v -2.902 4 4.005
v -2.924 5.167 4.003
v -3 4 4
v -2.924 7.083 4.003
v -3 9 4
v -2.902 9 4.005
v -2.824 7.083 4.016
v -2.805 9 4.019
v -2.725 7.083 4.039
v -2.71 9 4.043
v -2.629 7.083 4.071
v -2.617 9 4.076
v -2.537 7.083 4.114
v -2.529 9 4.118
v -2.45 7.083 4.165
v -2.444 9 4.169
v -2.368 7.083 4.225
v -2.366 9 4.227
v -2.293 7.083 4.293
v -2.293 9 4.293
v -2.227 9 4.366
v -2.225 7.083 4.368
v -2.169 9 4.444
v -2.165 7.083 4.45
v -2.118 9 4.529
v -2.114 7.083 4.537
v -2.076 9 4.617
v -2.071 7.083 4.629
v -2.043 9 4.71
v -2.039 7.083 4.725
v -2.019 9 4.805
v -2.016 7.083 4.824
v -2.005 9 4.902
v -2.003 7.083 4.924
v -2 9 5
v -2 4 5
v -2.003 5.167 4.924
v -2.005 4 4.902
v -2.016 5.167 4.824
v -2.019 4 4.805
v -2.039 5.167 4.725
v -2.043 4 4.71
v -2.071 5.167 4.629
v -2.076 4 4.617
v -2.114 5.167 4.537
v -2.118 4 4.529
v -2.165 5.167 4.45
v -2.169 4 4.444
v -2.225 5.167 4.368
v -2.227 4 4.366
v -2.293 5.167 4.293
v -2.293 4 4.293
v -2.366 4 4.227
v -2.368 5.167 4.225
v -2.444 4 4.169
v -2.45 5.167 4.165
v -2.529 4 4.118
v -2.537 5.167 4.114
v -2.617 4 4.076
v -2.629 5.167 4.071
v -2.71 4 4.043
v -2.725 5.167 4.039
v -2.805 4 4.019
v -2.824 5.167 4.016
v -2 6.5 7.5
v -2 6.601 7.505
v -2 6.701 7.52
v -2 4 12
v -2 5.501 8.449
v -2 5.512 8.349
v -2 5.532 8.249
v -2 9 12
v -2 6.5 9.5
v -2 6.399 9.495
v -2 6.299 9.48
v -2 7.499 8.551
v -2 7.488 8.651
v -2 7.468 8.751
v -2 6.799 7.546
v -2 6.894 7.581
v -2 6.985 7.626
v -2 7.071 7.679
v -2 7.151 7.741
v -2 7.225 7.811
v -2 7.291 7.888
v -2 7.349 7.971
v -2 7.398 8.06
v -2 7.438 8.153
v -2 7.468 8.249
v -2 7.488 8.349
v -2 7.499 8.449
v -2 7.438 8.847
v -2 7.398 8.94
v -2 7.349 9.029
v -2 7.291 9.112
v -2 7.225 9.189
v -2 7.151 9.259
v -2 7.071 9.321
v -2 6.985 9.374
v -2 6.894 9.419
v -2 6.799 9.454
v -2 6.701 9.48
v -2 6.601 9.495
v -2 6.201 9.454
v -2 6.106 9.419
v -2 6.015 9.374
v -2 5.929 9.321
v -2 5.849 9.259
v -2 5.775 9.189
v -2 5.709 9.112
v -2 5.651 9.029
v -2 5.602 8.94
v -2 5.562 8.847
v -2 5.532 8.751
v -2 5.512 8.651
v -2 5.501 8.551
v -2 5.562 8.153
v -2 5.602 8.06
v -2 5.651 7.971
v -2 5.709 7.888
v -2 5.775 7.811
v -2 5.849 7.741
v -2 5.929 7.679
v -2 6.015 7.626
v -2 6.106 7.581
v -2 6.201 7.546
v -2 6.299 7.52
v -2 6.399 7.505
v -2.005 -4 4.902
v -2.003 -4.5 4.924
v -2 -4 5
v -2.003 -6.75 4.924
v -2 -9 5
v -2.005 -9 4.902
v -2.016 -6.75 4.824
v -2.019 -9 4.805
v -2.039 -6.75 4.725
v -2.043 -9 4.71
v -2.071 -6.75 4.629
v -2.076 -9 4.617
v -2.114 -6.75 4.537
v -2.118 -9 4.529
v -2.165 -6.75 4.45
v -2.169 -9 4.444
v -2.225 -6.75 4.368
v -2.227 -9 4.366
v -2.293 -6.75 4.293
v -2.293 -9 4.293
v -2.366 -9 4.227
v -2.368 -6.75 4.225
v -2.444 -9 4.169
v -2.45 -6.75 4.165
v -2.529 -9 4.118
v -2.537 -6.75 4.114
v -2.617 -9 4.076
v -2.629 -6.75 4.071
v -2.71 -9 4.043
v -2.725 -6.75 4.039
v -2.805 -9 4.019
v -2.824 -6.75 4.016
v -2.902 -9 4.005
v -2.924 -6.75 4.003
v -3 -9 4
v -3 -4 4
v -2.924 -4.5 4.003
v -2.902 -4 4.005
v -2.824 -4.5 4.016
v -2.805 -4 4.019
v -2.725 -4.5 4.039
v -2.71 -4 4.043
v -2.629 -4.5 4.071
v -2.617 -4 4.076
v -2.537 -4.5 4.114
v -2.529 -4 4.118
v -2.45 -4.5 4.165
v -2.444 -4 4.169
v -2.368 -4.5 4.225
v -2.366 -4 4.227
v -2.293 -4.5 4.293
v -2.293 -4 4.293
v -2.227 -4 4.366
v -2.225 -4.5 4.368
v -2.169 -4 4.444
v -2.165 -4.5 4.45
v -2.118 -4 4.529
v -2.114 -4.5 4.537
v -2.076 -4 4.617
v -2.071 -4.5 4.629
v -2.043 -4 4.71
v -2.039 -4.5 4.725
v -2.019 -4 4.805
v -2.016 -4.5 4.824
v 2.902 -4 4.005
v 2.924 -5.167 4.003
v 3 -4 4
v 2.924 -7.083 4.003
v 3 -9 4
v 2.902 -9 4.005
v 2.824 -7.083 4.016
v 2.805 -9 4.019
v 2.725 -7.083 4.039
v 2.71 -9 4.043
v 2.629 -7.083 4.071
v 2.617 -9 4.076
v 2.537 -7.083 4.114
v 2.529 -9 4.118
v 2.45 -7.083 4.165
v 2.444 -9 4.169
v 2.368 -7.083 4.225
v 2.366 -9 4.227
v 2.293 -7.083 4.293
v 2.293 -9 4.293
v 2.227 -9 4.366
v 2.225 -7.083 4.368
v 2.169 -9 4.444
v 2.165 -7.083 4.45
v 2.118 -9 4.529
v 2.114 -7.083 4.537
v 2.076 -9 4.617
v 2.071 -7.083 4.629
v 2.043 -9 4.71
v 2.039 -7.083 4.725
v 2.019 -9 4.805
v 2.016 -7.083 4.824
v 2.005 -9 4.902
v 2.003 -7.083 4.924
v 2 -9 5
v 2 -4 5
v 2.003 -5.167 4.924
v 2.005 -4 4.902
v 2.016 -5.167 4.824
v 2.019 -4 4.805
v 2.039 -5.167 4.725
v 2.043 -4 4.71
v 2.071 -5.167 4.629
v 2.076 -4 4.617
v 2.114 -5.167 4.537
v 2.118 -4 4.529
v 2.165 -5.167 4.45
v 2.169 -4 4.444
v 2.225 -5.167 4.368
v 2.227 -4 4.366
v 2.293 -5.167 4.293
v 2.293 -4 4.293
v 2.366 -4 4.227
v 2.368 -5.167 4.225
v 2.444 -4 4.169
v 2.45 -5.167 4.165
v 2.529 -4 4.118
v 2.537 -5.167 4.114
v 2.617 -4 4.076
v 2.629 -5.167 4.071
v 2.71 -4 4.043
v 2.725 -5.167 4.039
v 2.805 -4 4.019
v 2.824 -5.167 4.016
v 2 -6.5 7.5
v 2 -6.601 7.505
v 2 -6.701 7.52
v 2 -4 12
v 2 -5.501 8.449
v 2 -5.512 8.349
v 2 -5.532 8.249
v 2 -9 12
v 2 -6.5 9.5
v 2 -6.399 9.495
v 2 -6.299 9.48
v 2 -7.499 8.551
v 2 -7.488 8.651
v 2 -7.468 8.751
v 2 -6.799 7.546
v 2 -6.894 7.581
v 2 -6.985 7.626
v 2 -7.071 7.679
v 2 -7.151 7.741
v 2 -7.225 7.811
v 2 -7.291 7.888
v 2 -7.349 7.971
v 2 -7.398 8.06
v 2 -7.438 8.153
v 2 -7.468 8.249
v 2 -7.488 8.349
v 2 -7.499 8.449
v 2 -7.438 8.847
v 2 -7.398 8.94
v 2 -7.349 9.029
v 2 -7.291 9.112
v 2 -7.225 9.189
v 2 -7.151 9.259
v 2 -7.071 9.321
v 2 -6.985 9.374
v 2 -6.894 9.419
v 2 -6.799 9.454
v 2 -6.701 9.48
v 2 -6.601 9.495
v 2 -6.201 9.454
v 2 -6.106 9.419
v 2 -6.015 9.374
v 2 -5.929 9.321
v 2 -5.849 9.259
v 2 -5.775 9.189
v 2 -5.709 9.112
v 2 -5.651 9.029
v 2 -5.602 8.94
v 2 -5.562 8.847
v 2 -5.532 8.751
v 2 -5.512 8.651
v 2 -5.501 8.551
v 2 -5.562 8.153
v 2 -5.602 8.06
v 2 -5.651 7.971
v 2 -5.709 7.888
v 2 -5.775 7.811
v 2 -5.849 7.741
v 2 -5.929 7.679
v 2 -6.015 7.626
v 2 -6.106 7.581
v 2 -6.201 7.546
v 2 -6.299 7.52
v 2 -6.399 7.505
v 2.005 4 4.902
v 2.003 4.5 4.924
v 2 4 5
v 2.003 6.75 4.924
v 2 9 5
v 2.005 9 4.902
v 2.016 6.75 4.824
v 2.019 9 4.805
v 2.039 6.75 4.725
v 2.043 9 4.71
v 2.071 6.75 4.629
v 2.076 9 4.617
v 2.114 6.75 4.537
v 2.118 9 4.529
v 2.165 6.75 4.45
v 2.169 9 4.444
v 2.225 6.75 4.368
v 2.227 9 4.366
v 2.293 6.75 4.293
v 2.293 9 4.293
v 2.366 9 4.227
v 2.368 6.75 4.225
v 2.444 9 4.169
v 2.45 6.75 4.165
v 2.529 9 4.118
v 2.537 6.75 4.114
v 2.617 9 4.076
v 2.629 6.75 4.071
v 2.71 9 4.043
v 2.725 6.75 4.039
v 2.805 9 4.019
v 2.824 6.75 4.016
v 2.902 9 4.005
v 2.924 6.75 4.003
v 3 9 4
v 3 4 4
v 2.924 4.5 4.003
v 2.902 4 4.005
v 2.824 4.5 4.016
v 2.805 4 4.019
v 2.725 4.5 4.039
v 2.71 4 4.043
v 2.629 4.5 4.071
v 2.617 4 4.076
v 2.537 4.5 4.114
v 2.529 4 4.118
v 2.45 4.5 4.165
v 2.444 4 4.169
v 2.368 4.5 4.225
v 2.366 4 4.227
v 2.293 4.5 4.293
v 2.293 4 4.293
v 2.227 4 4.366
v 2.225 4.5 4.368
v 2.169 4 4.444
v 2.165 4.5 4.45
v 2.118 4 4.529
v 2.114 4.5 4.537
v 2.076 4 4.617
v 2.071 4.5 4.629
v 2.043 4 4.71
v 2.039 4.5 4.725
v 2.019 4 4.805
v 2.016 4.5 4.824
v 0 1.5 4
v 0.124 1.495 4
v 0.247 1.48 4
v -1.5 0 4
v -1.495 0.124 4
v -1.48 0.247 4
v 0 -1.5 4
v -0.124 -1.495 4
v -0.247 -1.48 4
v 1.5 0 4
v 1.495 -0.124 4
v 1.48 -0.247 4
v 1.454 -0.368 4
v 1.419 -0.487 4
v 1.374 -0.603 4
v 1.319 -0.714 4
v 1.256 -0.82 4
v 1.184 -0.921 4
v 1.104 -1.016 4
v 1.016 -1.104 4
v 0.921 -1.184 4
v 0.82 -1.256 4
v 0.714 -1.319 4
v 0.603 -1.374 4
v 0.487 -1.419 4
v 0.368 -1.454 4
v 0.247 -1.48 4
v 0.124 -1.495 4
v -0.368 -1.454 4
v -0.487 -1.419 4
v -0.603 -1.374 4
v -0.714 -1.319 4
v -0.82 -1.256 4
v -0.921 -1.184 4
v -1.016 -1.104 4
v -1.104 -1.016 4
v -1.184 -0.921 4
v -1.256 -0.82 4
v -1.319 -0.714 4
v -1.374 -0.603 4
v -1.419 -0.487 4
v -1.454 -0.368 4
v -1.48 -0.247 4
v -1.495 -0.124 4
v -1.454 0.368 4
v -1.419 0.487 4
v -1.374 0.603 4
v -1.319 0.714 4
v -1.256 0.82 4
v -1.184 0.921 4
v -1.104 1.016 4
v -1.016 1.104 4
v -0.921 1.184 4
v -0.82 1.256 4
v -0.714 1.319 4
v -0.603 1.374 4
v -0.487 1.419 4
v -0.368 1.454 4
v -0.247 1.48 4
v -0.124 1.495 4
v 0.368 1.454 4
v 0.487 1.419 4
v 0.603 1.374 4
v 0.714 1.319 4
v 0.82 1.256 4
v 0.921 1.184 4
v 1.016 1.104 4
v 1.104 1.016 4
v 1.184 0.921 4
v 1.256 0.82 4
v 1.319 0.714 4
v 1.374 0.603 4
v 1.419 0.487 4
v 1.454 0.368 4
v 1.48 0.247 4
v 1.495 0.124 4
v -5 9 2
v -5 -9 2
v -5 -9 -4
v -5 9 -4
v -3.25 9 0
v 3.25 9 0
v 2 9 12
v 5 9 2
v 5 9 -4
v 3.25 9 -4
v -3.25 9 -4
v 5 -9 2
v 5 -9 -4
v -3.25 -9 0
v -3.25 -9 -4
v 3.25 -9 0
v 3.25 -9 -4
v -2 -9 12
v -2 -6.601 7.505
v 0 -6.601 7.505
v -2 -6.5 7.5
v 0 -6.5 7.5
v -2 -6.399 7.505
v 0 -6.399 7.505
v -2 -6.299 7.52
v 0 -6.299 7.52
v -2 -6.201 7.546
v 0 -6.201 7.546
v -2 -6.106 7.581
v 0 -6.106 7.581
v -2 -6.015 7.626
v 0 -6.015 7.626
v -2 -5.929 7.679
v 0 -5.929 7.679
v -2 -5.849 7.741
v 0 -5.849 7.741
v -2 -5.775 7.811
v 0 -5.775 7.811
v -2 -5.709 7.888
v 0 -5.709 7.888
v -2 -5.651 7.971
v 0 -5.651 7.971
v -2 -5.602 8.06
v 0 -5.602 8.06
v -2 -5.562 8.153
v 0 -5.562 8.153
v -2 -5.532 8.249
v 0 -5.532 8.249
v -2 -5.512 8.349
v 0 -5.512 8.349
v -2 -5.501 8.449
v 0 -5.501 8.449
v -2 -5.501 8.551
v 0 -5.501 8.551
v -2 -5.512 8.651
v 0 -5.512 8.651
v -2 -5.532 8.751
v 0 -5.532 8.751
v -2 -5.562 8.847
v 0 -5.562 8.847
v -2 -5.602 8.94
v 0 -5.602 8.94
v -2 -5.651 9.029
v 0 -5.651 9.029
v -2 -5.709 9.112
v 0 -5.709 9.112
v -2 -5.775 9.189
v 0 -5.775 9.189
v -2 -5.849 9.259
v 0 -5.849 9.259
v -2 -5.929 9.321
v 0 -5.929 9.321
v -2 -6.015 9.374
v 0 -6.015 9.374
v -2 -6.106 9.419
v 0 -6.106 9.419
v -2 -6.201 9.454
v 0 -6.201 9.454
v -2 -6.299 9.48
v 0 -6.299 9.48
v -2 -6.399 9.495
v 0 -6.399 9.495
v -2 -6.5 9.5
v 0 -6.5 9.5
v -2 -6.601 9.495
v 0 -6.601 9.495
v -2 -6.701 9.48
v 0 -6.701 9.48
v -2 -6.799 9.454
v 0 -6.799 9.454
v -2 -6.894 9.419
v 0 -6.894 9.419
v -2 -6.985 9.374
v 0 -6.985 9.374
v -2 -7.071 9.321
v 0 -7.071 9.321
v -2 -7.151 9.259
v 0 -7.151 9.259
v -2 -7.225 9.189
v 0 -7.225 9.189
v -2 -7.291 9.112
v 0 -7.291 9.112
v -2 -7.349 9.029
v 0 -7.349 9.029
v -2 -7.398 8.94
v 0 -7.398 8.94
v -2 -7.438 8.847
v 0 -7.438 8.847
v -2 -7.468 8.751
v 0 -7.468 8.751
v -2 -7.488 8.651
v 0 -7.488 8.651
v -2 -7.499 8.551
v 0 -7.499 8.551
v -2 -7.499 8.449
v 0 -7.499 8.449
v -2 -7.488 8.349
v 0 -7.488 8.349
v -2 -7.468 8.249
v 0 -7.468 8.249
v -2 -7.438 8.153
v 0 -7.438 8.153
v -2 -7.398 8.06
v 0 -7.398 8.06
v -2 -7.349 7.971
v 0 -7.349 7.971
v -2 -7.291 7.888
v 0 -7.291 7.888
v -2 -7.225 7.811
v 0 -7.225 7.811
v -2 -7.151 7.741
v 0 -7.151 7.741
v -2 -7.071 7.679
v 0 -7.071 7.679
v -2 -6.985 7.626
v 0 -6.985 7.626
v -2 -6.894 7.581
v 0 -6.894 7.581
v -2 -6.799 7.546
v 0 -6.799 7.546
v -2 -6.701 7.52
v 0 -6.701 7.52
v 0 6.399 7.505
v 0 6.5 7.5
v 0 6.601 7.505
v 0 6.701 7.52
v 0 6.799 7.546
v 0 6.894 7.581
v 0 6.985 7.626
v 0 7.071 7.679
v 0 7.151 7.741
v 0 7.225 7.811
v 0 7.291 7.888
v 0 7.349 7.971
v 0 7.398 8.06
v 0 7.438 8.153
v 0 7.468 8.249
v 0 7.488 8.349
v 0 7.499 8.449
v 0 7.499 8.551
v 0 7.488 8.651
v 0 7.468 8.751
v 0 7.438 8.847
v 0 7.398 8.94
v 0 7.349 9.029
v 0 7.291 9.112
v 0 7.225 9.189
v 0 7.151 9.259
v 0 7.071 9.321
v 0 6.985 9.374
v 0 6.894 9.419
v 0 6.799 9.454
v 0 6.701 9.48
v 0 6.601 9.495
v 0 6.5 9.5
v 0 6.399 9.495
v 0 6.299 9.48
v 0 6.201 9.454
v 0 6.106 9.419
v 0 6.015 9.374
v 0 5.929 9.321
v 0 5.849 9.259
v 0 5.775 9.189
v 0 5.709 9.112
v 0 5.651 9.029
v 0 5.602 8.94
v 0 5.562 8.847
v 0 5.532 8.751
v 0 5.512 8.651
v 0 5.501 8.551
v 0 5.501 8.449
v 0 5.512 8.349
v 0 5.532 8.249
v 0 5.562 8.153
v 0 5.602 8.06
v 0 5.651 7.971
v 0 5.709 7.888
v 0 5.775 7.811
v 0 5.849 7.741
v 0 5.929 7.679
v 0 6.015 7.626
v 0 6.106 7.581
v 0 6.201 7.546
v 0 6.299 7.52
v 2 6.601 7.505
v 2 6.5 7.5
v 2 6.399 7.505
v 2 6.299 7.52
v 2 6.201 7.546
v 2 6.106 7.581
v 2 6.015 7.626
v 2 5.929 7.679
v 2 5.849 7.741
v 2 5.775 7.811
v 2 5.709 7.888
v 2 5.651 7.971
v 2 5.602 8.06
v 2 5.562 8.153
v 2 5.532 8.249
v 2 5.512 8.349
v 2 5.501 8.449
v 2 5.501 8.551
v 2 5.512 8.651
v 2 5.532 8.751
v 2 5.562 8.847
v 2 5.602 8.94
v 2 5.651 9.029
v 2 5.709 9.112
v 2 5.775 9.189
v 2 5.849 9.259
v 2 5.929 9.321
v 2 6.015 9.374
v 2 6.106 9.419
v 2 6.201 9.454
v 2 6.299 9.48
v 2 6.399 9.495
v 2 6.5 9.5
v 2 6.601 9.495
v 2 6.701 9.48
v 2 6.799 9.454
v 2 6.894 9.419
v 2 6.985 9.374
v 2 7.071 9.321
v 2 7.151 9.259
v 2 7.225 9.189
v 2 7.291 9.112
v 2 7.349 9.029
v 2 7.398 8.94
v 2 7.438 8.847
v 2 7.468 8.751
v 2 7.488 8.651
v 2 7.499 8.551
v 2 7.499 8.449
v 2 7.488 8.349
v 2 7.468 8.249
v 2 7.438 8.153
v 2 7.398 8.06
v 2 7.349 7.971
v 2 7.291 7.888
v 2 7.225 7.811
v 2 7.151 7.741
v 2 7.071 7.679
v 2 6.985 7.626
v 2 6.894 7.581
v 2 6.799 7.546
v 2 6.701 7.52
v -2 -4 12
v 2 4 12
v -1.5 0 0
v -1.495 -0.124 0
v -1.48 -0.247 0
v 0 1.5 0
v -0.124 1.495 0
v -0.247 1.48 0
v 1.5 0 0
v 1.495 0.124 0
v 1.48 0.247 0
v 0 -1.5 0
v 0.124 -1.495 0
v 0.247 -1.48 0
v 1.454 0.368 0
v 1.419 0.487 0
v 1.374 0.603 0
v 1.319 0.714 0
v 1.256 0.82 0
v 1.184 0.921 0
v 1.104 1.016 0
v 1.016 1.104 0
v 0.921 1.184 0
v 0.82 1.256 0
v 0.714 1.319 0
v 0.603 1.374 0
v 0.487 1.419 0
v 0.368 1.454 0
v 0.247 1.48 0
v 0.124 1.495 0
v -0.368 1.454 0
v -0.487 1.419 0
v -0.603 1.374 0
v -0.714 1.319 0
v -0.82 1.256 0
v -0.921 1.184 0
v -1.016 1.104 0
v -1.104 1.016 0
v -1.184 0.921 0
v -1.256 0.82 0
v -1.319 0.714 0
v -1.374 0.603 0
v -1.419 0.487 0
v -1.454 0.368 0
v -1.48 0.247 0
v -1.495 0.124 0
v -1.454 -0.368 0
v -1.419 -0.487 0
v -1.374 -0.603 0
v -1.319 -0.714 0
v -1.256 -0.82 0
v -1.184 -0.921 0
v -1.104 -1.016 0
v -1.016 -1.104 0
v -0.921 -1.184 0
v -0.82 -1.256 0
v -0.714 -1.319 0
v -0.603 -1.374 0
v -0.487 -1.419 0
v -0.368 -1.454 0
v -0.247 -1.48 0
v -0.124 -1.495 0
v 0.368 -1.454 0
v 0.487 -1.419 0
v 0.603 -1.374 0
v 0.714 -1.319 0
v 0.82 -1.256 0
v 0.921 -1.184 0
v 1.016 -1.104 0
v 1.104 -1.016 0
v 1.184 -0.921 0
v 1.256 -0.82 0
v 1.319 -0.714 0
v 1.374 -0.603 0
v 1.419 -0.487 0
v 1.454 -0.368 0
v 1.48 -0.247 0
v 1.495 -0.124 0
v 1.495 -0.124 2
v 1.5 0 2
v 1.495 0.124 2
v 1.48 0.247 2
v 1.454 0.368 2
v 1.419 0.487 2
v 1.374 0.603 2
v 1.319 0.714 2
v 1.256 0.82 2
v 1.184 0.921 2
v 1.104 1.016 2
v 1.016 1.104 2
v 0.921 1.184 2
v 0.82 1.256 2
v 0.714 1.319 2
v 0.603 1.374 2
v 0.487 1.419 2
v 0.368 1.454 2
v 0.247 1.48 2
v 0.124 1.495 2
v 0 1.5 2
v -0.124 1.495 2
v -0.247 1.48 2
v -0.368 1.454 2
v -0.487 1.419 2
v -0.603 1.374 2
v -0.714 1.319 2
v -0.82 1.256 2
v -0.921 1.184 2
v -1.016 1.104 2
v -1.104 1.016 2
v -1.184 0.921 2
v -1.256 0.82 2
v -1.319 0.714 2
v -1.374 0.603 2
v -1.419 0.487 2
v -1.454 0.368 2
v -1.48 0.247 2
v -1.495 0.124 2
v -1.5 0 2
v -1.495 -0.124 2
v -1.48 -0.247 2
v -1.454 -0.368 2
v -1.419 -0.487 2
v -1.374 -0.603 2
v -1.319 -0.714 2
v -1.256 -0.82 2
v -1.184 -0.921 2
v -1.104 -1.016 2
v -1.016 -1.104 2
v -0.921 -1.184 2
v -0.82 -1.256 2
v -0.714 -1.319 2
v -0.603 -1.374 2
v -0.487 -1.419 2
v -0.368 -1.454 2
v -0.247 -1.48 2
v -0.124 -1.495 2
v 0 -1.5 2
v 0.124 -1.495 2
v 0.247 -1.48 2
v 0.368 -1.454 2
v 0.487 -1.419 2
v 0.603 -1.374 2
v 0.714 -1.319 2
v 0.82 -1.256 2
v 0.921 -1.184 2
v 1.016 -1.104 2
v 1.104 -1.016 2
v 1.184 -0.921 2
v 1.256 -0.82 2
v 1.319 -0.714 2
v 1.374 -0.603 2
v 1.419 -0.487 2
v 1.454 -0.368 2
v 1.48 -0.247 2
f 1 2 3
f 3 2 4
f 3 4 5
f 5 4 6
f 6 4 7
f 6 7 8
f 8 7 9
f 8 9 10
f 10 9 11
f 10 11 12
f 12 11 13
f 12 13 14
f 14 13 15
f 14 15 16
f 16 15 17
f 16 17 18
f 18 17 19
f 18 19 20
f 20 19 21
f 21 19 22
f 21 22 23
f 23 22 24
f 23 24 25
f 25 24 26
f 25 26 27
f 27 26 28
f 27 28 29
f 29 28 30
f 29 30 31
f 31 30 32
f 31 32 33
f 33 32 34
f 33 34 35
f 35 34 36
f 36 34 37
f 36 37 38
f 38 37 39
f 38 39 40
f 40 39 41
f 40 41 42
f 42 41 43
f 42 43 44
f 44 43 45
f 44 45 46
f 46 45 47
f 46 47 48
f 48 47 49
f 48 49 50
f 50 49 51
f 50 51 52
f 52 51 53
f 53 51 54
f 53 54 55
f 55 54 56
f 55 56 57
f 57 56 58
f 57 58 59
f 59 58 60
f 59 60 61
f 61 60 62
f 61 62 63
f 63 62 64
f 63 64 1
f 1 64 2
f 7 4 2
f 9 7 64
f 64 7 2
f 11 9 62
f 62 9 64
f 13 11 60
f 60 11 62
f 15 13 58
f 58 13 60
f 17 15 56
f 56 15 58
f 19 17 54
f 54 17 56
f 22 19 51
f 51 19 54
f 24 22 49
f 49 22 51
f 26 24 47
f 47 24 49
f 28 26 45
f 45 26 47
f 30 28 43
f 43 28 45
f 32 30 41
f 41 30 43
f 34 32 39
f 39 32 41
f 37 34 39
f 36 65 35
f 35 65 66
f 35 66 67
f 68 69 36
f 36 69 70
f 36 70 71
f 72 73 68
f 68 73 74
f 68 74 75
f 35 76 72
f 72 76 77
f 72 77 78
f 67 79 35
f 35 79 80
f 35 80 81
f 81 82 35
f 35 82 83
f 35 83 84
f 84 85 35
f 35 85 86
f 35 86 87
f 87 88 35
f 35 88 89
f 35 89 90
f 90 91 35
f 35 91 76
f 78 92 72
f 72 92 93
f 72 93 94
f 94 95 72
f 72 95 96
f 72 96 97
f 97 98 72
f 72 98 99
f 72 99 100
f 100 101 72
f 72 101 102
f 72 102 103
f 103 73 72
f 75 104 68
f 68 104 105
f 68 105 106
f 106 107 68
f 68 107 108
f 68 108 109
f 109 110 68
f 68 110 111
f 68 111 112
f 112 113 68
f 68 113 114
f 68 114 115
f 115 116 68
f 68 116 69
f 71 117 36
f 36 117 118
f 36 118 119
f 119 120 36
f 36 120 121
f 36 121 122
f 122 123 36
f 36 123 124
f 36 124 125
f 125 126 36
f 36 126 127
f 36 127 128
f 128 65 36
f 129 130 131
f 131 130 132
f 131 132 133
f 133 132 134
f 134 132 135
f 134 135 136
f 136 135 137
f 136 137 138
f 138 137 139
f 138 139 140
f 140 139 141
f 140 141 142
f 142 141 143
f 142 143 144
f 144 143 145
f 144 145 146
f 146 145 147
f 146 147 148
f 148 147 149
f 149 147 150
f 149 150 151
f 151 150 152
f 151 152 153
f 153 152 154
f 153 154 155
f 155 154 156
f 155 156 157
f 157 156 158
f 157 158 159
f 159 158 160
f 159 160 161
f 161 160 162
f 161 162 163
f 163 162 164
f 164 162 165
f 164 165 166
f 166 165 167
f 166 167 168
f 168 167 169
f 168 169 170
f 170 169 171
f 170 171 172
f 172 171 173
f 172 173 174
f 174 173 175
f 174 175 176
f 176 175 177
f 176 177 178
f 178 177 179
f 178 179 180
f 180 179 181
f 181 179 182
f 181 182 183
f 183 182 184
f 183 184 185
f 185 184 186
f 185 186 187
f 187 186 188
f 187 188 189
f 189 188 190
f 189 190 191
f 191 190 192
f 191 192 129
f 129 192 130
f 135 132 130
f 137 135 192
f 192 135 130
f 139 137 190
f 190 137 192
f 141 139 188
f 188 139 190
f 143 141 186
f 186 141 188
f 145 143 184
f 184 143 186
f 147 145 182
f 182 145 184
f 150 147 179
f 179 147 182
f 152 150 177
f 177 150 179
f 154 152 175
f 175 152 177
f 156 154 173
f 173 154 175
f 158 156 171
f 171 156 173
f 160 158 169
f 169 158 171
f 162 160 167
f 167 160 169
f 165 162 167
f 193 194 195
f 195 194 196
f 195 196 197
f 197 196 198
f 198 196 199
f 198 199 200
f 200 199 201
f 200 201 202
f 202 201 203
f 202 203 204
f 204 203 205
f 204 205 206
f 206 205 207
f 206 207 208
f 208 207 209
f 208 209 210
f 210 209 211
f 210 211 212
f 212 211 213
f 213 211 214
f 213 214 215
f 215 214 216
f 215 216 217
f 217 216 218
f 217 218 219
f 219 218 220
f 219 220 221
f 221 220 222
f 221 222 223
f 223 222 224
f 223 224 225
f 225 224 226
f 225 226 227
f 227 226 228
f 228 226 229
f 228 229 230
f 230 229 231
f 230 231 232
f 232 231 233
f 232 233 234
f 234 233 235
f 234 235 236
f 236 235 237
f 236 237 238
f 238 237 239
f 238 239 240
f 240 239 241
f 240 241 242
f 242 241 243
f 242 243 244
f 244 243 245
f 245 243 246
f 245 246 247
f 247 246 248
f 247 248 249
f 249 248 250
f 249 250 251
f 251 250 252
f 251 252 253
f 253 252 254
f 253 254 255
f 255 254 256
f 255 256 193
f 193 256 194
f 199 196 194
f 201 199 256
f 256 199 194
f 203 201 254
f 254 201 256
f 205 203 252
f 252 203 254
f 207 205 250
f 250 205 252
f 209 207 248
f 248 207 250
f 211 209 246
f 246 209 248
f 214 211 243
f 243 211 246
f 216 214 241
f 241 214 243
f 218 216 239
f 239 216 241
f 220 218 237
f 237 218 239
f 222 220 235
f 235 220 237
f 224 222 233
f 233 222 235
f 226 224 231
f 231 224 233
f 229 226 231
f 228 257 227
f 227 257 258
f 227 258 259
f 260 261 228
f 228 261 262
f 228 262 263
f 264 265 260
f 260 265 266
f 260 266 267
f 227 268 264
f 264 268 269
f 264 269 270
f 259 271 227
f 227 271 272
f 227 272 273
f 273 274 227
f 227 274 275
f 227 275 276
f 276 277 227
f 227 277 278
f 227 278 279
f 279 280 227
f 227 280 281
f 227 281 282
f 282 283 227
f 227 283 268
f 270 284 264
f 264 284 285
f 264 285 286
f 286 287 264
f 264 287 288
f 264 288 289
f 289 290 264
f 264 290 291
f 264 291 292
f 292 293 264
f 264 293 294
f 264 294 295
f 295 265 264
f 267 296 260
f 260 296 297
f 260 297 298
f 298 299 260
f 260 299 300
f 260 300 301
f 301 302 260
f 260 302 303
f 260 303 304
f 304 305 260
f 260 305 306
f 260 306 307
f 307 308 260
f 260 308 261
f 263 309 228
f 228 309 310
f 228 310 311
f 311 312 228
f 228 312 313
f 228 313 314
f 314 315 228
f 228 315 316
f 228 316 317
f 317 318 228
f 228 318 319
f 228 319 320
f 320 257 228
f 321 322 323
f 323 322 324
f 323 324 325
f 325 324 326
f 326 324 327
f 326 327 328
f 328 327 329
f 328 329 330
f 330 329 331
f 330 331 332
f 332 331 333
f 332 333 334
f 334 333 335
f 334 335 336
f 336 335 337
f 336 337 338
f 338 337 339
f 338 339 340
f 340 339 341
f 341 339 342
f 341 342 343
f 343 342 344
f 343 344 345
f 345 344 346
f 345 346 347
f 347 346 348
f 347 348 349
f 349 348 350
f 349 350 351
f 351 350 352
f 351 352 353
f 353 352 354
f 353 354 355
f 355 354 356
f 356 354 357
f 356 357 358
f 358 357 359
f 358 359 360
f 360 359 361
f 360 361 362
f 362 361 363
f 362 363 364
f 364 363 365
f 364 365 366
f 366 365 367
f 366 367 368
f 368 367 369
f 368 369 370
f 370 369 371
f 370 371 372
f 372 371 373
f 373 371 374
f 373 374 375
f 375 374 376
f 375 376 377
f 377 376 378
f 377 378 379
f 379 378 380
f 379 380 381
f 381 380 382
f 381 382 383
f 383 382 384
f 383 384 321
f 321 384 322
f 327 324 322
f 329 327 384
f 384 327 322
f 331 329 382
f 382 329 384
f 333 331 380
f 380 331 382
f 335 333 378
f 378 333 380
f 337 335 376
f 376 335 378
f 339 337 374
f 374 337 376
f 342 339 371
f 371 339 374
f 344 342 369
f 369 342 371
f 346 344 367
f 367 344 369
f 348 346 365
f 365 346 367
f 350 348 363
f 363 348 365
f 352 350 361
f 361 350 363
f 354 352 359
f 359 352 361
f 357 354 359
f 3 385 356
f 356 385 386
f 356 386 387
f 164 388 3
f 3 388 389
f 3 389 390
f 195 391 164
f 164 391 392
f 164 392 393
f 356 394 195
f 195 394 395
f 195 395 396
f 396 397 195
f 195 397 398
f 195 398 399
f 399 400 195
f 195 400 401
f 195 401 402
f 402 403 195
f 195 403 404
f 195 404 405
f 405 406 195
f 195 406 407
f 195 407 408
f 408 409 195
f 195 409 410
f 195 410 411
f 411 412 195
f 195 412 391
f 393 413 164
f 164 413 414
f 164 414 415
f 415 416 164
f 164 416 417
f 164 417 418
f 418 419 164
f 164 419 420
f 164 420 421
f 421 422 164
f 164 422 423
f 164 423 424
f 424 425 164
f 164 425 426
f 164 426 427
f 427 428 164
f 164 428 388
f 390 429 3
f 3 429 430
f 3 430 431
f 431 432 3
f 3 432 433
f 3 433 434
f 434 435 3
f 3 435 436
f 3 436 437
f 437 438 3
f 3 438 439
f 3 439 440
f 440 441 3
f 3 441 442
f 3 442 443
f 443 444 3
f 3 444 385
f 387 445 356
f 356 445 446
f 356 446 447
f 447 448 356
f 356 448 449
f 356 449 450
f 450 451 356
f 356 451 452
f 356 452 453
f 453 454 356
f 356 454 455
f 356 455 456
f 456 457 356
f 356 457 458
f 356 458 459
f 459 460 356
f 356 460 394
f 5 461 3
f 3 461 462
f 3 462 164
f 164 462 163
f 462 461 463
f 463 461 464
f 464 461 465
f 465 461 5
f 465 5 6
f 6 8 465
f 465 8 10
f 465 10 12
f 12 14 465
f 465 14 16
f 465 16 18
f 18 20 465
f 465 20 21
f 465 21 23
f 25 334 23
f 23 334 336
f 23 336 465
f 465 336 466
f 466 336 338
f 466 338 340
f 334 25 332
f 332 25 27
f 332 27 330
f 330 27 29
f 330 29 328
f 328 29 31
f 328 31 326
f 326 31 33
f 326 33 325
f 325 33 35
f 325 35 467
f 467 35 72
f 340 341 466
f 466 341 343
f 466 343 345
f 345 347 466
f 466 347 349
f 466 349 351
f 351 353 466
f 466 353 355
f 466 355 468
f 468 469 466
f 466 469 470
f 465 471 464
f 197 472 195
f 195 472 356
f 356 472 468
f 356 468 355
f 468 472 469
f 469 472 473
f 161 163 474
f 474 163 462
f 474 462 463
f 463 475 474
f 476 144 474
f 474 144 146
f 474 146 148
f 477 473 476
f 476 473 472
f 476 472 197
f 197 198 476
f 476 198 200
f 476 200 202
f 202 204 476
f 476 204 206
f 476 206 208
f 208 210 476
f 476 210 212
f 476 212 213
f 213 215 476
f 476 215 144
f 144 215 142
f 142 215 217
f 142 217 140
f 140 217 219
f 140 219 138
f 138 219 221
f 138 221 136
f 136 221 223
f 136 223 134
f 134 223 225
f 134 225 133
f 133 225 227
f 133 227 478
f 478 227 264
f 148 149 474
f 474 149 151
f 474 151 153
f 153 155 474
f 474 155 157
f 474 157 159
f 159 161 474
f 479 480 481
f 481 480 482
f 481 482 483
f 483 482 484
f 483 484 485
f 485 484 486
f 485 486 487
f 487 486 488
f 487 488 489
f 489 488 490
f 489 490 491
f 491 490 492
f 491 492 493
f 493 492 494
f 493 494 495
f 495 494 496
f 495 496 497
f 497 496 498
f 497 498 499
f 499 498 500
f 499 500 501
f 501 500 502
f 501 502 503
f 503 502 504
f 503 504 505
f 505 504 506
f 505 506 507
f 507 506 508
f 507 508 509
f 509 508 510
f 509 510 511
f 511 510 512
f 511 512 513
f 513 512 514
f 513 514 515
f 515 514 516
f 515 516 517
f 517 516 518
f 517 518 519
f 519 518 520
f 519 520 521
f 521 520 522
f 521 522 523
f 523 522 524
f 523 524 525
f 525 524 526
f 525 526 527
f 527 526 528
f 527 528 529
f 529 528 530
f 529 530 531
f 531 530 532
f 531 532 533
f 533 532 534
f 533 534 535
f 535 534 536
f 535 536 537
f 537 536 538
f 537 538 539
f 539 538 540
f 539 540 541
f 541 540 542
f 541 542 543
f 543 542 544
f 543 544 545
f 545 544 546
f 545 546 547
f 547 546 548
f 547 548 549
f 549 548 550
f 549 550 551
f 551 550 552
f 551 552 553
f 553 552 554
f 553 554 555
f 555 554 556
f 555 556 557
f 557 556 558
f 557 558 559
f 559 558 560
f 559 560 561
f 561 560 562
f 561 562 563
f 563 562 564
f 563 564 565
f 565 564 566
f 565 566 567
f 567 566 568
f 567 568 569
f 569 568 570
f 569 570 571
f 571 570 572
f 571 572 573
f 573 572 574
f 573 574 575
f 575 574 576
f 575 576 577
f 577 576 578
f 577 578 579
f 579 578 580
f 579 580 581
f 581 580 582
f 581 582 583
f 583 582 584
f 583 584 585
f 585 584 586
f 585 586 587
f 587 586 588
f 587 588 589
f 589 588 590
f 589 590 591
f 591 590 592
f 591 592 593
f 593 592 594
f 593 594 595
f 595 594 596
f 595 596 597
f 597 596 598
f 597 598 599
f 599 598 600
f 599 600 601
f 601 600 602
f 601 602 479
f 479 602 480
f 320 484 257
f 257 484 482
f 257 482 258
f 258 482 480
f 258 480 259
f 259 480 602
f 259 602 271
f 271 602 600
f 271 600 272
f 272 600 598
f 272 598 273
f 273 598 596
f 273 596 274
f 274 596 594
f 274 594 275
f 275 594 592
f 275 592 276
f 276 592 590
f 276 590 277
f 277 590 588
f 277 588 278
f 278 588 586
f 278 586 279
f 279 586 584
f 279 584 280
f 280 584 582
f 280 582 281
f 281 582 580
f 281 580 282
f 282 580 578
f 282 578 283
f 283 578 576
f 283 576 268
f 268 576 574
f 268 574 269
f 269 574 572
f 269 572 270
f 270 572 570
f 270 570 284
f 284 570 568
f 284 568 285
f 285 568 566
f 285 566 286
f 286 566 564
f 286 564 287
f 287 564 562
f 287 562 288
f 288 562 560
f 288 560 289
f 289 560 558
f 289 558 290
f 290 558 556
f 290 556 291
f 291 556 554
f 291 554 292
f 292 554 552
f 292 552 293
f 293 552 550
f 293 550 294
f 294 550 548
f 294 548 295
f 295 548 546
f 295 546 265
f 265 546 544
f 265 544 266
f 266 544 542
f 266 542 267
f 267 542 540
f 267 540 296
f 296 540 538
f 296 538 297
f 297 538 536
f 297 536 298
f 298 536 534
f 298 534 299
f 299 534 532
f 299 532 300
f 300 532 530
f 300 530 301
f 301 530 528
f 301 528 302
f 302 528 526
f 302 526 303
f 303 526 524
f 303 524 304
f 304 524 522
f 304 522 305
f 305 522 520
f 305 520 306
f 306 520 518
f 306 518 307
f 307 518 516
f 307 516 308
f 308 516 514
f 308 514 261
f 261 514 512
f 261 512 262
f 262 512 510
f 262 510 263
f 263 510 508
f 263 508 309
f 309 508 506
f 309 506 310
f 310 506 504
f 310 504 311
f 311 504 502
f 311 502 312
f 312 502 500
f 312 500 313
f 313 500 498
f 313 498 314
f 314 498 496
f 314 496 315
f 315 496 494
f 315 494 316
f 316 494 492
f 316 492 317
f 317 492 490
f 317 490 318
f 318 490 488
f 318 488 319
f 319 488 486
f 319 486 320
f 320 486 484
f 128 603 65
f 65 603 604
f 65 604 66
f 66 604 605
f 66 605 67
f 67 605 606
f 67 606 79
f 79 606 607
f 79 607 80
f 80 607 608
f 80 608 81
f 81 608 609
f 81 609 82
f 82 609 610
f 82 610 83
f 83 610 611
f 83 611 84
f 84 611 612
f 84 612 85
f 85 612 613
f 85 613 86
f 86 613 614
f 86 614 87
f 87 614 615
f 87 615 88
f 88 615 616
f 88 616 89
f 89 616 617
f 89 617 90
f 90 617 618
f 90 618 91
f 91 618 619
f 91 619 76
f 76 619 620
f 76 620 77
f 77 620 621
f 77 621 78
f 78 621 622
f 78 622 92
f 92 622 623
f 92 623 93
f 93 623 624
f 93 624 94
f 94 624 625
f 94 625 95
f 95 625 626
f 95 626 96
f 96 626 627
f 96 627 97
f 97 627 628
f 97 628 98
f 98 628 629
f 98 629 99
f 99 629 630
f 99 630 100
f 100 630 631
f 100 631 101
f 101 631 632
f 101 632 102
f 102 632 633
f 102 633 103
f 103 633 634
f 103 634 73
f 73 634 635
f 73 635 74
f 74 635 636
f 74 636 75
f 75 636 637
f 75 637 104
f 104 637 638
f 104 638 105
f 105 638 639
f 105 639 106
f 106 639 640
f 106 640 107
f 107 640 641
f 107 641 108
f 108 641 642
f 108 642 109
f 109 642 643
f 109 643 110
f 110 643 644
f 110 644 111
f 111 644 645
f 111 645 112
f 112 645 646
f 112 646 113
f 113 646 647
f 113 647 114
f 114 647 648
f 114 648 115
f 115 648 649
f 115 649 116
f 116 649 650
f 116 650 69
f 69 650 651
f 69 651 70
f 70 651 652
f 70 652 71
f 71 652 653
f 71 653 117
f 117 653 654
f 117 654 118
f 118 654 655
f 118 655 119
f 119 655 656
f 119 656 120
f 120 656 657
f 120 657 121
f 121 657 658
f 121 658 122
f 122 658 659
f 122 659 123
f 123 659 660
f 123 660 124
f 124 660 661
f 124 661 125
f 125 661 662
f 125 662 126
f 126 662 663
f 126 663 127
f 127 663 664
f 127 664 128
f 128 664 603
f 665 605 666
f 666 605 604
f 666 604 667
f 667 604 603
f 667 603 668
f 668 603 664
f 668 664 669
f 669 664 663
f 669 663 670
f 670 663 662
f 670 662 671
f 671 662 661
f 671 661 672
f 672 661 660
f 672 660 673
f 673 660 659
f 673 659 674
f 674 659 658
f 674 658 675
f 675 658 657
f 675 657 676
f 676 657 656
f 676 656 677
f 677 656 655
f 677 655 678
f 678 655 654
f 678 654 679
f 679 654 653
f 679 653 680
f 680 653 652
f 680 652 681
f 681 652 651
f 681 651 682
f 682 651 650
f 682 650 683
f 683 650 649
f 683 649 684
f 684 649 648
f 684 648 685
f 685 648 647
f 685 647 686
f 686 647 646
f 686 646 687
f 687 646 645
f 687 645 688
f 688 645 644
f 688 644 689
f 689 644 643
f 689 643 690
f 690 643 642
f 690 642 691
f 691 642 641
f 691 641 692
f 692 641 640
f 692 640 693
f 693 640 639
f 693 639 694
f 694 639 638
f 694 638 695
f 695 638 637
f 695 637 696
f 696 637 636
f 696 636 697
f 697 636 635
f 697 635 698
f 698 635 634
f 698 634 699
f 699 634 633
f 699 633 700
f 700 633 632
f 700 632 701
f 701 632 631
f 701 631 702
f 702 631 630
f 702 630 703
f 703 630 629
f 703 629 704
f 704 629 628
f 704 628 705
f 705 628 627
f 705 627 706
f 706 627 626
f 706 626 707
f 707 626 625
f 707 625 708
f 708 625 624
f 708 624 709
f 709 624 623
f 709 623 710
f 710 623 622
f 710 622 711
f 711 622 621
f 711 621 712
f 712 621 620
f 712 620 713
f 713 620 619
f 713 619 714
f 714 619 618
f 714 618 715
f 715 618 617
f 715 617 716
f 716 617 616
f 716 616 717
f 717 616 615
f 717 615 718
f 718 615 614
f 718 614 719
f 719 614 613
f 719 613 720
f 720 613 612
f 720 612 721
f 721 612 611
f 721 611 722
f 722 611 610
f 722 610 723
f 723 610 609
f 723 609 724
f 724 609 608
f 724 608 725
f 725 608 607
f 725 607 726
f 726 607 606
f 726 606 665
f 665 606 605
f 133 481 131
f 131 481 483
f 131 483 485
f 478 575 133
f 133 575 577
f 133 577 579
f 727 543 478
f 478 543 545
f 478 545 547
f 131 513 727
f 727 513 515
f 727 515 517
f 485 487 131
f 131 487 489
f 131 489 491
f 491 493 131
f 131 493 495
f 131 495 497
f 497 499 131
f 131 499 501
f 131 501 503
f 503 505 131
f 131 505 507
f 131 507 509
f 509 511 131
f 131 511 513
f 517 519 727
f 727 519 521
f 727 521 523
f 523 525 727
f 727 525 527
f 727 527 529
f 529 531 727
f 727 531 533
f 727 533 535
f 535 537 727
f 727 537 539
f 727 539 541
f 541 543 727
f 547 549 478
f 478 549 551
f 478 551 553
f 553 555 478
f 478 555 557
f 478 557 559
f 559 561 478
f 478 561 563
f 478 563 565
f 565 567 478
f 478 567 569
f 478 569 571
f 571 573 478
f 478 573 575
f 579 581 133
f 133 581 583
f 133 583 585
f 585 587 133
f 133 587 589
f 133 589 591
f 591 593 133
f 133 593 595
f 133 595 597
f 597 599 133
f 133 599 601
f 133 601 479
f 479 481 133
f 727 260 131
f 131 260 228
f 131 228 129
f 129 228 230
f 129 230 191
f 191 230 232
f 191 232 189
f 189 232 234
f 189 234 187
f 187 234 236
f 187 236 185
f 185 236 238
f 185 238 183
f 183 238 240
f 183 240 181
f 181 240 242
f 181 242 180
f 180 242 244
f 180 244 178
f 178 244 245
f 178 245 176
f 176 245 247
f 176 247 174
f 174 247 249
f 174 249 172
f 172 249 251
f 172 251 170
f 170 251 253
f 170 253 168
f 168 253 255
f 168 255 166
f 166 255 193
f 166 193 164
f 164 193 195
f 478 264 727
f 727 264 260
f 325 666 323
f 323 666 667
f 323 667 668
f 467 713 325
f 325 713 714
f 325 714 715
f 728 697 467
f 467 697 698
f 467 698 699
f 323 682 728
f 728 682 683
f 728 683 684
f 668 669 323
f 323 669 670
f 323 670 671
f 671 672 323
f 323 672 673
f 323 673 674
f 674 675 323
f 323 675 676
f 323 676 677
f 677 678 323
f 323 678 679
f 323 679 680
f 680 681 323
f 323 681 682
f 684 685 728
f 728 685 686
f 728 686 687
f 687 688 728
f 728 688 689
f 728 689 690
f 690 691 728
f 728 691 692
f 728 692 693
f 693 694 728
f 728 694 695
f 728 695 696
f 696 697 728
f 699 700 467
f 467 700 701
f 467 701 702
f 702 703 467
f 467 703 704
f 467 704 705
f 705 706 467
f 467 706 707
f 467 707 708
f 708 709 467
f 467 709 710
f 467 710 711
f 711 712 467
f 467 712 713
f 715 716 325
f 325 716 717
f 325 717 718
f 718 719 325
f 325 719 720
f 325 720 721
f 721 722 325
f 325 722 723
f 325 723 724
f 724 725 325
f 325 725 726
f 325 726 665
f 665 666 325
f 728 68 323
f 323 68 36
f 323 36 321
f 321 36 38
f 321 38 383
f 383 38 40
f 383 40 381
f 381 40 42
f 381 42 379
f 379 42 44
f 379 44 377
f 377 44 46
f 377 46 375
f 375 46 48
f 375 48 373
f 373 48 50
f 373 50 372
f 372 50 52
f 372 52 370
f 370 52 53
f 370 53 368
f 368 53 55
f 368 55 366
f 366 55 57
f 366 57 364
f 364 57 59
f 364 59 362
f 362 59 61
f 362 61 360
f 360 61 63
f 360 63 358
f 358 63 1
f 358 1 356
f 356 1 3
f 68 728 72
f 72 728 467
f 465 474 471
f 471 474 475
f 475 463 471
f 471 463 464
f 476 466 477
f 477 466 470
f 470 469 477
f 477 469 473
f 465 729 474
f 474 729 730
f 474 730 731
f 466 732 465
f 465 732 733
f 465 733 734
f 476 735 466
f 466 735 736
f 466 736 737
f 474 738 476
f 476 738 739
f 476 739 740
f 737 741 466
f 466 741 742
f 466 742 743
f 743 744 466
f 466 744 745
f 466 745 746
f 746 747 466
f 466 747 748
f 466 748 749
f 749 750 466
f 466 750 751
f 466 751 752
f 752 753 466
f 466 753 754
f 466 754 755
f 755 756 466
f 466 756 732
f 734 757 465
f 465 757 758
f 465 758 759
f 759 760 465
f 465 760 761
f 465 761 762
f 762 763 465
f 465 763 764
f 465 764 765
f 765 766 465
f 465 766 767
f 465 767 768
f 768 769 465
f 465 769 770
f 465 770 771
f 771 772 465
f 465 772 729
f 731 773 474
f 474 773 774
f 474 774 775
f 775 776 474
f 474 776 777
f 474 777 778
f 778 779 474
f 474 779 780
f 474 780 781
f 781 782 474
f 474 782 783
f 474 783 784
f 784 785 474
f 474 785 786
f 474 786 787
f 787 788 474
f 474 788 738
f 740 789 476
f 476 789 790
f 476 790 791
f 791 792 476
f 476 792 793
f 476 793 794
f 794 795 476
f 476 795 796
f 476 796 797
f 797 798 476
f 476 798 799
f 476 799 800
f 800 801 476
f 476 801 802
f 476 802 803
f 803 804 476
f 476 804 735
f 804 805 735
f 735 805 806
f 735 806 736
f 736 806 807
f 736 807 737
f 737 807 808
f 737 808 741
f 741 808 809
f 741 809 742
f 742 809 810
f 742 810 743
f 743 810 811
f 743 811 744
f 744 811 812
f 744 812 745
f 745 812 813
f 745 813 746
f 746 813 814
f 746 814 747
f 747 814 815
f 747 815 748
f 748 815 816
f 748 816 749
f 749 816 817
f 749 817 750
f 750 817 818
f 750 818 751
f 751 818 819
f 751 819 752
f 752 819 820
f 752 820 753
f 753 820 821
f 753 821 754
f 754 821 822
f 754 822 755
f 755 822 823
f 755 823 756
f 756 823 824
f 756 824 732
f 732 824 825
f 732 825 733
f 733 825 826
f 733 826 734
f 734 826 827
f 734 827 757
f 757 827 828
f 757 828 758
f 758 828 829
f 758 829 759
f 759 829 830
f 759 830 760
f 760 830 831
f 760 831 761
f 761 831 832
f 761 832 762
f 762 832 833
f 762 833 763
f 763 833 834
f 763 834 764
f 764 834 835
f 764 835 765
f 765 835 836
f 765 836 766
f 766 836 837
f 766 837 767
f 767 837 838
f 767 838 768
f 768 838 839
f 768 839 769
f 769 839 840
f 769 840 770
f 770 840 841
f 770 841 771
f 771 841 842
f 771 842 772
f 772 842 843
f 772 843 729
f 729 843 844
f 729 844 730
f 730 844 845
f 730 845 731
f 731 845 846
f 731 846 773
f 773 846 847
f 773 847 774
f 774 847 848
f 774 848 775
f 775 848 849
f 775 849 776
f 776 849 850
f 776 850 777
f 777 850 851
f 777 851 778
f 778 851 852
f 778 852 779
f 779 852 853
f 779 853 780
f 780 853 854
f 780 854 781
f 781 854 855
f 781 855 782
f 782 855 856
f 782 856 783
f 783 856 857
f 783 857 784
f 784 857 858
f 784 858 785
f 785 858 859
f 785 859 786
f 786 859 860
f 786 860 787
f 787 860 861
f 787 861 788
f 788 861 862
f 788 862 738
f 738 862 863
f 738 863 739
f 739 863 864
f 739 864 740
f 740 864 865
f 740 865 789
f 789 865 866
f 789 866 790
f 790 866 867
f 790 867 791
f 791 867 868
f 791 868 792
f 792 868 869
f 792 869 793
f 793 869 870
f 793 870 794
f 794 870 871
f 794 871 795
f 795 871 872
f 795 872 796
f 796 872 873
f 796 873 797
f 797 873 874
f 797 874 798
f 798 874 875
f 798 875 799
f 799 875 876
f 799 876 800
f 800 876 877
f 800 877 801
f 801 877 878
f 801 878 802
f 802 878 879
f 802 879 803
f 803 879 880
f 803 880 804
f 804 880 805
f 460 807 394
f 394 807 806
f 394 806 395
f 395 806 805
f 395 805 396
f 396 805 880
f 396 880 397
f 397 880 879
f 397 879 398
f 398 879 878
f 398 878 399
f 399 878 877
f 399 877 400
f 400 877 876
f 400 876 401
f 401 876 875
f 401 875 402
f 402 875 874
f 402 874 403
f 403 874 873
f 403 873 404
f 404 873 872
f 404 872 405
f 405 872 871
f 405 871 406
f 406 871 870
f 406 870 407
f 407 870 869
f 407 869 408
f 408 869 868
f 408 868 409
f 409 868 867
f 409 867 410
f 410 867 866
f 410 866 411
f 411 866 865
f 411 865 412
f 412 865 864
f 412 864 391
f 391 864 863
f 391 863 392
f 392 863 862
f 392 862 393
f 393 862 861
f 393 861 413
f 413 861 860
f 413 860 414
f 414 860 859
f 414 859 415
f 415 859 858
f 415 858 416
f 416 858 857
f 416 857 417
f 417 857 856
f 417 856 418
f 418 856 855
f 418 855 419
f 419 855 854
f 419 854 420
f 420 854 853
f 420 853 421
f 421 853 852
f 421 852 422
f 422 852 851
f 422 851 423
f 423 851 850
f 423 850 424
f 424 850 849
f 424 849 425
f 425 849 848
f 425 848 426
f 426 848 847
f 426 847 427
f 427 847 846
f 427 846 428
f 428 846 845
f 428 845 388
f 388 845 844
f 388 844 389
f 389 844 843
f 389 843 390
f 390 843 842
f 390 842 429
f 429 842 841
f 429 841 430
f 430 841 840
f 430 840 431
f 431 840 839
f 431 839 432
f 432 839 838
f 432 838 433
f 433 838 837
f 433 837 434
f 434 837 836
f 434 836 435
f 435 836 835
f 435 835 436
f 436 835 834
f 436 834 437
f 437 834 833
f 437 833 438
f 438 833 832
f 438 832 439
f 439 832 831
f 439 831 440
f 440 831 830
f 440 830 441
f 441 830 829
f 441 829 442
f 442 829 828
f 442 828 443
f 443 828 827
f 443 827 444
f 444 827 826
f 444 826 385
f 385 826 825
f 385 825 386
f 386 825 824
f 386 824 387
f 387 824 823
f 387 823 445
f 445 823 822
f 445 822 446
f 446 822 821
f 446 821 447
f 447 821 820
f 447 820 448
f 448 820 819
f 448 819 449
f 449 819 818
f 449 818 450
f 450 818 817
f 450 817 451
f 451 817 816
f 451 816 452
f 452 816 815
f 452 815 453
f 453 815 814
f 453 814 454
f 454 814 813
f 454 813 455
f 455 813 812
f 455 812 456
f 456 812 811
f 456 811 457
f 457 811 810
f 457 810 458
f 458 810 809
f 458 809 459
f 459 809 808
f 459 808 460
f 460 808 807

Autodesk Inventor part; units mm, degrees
ref_plane "YZ Plane" through (0, 0, 0) normal (1, 0, 0) x (0, 1, 0)
ref_plane "XZ Plane" through (0, 0, 0) normal (0, 1, 0) x (-1, 0, 0)
ref_plane "XY Plane" through (0, 0, 0) normal (0, 0, 1) x (1, 0, 0)
sketch "Sketch1" plane through (0, 0, 0) normal (0, 0, 1) x (1, 0, 0)
  circle A0 centre (0, 0) radius 1.5 projected
  line L0 (-3.25, 2.3318) -> (-3.25, -2.3318) projected
  arc A1 (-3.25, -2.3318) -> (3.25, -2.3318) centre (0, 0) ccw projected
  line L1 (3.25, -2.3318) -> (3.25, 2.3318) projected
  arc A2 (3.25, 2.3318) -> (-3.25, 2.3318) centre (0, 0) ccw projected
  line L2 (5, 4) -> (5, -4)
  line L3 (5, -4) -> (-5, -4)
  line L4 (-5, -4) -> (-5, 4)
  line L5 (-5, 4) -> (5, 4)
  line L6 (5, 4) -> (-5, -4) construction
  line L7 (5, -4) -> (-5, 4) construction
  dimension "d0" = 8
  dimension "d1" = 10
extrude "Extrusion1" add sketch "Sketch1" along normal blind 4 contours A0 | A2 L1 A1 L0 | L0 A1 L3 L4 L5 A2 | L5 L2 L3 A1 L1 A2
sketch "Sketch2" plane through (0, 0, 4) normal (0, 0, 1) x (1, 0, 0)
  line L0 (5, 4) -> (-5, 4) projected
  line L1 (-5, 4) -> (-5, -4) projected
  line L2 (-5, -4) -> (5, -4) projected
  line L3 (5, -4) -> (5, 4) projected
  circle A0 centre (0, 0) radius 1.5
  dimension "d4" = 3
extrude "Extrusion2" cut sketch "Sketch2" against normal blind 4 contours A0
sketch "Sketch3" plane through (0, 0, 0) normal (0, 0, -1) x (-1, 0, 0)
  circle A0 centre (0, 0) radius 1.5 projected
  line L0 (-5, 4) -> (5, 4) projected
  line L1 (-5, -4) -> (-5, 4) projected
  line L2 (5, -4) -> (-5, -4) projected
  line L3 (5, 4) -> (5, -4) projected
  line L4 (-3.25, -2.3318) -> (-3.25, 2.3318) projected
  line L5 (3.25, 2.3318) -> (3.25, -2.3318) projected
  line L6 (-5, -4) -> (-3.25, -4)
  line L7 (-3.25, -4) -> (-3.25, 4)
  line L8 (-3.25, 4) -> (-5, 4)
  line L9 (-5, 4) -> (-5, -4)
  line L10 (5, 4) -> (5, -4) projected
  line L11 (5, -4) -> (3.25, -4)
  line L12 (3.25, -4) -> (3.25, 4)
  line L13 (3.25, 4) -> (5, 4)
  line L14 (5, 4) -> (5, -4)
  dimension "d7" = 1.75
  dimension "d8" = 8
  dimension "d9" = 1.75
  dimension "d10" = 8
extrude "Extrusion3" add sketch "Sketch3" along normal blind 4 contours L0 L7 L4 L2 L1 | L0 L3 L2 L12 L5
sketch "Sketch4" plane through (0, 0, 4) normal (0, 0, 1) x (1, 0, 0)
  circle A0 centre (0, 0) radius 1.5 projected
  line L0 (5, 4) -> (-5, 4) projected
  line L1 (-5, 4) -> (-5, -4) projected
  line L2 (-5, -4) -> (5, -4) projected
  line L3 (5, -4) -> (5, 4) projected
  line L4 (5, -4) -> (-5, -4)
  line L5 (-5, -4) -> (-5, -9)
  line L6 (-5, -9) -> (5, -9)
  line L7 (5, -9) -> (5, -4)
  line L8 (5, -4) -> (5, 4) projected
  line L9 (5, 4) -> (-5, 4)
  line L10 (-5, 4) -> (-5, 9)
  line L11 (-5, 9) -> (5, 9)
  line L12 (5, 9) -> (5, 4)
  dimension "d13" = 10
  dimension "d14" = 5
  dimension "d15" = 10
  dimension "d16" = 5
extrude "Extrusion4" add sketch "Sketch4" along normal blind 8 contours L0 L10 L11 L12 | L7 L6 L5 L2
sketch "Sketch5" plane through (-3.25, -4, 0) normal (0, -1, 0) x (1, 0, 0)
  line L0 (0, 0) -> (6.5, 0) projected
  line L1 (6.5, 0) -> (6.5, -4) projected
  line L2 (8.25, -4) -> (6.5, -4) projected
  line L3 (8.25, -4) -> (8.25, 4) projected
  line L4 (-1.75, 4) -> (8.25, 4) projected
  line L5 (-1.75, -4) -> (-1.75, 4) projected
  line L6 (0, -4) -> (-1.75, -4) projected
  line L7 (0, 0) -> (0, -4) projected
  point P0 (3.25, 0)
extrude "Extrusion5" add sketch "Sketch5" along normal up to surface (5 mm away)
sketch "Sketch6" plane through (-3.25, 4, 0) normal (0, 1, 0) x (1, 0, 0)
  line L0 (6.5, 0) -> (0, 0) projected
  line L1 (0, 0) -> (0, 4) projected
  line L2 (-1.75, 4) -> (0, 4) projected
  line L3 (-1.75, 4) -> (-1.75, -4) projected
  line L4 (8.25, -4) -> (-1.75, -4) projected
  line L5 (8.25, -4) -> (8.25, 4) projected
  line L6 (6.5, 4) -> (8.25, 4) projected
  line L7 (6.5, 0) -> (6.5, 4) projected
  point P0 (3.25, 0)
extrude "Extrusion6" add sketch "Sketch6" along normal up to surface (5 mm away)
sketch "Sketch7" plane through (5, -9, -4) normal (1, 0, 0) x (0, 0, -1)
  line L0 (-8, 5) -> (-8, 13) projected
  line L1 (-8, 5) -> (-16, 5) projected
  line L2 (-16, 0) -> (-16, 5) projected
  line L3 (0, 0) -> (-16, 0) projected
  line L4 (0, 0) -> (0, 18) projected
  line L5 (0, 18) -> (-16, 18) projected
  line L6 (-16, 13) -> (-16, 18) projected
  line L7 (-8, 13) -> (-16, 13) projected
  line L8 (-8, 5) -> (-16, 5) projected
  line L9 (0, 0) -> (-16, 0) projected
  line L10 (-8, 5) -> (-16, 5)
  line L11 (-16, 5) -> (-16, 0)
  line L12 (-16, 0) -> (-8, 0)
  line L13 (-8, 0) -> (-8, 5)
  line L14 (-16, 18) -> (-16, 13) projected
  line L15 (-8, 13) -> (-16, 13)
  line L16 (-16, 13) -> (-16, 18)
  line L17 (-16, 18) -> (-8, 18)
  line L18 (-8, 18) -> (-8, 13)
  point P0 (-4, 9)
  point P1 (-8, 18)
  point P2 (-8, 0)
extrude "Extrusion7" cut sketch "Sketch7" against normal blind 3 contours L13 L3 L2 L1 | L7 L6 L5 L18
sketch "Sketch8" plane through (-5, -9, -4) normal (-1, 0, 0) x (0, 0, 1)
  line L0 (8, 18) -> (8, 13) projected
  line L1 (8, 5) -> (8, 0) projected
  line L2 (8, 13) -> (8, 5) projected
  line L3 (8, 13) -> (16, 13) projected
  line L4 (16, 18) -> (16, 13) projected
  line L5 (16, 18) -> (0, 18) projected
  line L6 (0, 18) -> (0, 0) projected
  line L7 (0, 0) -> (16, 0) projected
  line L8 (16, 5) -> (16, 0) projected
  line L9 (8, 5) -> (16, 5) projected
  point P0 (4, 9)
extrude "Extrusion8" cut sketch "Sketch8" against normal blind 3 contours L5 L4 L3 L0 | L9 L8 L7 L1
sketch "Sketch9" plane through (2, -9, -4) normal (1, 0, 0) x (0, 0, -1)
  line L0 (-8, 13) -> (-16, 13) projected
  line L1 (-8, 18) -> (-8, 13) projected
  line L2 (-16, 18) -> (-8, 18) projected
  line L3 (-16, 13) -> (-16, 18) projected
  line L4 (-16, 0) -> (-16, 5) projected
  line L5 (-8, 0) -> (-16, 0) projected
  line L6 (-8, 5) -> (-8, 0) projected
  line L7 (-16, 5) -> (-8, 5) projected
  line L8 (-16, 13) -> (-16, 18) projected
  line L9 (-16, 15.5) -> (-12.5, 15.5)
  circle A0 centre (-12.5, 15.5) radius 1
  line L10 (-16, 2.5) -> (-12.5, 2.5)
  circle A1 centre (-12.5, 2.5) radius 1
  point P0 (-4, 9)
  dimension "d27" = 3.5
  dimension "d28" = 2
  dimension "d29" = 3.5
  dimension "d30" = 2
extrude "Extrusion9" cut sketch "Sketch9" against normal blind 4 contours A0 | A1
chamfer "Chamfer1" distance 2 angle 45 2 edges at (5, 0, 4) (-5, 0, 4)
fillet "Fillet1" radius 1 4 edges at (2, 6.5, 4) (2, -6.5, 4) (-2, -6.5, 4) (-2, 6.5, 4)
properties part number "bbearing_holder_1"
